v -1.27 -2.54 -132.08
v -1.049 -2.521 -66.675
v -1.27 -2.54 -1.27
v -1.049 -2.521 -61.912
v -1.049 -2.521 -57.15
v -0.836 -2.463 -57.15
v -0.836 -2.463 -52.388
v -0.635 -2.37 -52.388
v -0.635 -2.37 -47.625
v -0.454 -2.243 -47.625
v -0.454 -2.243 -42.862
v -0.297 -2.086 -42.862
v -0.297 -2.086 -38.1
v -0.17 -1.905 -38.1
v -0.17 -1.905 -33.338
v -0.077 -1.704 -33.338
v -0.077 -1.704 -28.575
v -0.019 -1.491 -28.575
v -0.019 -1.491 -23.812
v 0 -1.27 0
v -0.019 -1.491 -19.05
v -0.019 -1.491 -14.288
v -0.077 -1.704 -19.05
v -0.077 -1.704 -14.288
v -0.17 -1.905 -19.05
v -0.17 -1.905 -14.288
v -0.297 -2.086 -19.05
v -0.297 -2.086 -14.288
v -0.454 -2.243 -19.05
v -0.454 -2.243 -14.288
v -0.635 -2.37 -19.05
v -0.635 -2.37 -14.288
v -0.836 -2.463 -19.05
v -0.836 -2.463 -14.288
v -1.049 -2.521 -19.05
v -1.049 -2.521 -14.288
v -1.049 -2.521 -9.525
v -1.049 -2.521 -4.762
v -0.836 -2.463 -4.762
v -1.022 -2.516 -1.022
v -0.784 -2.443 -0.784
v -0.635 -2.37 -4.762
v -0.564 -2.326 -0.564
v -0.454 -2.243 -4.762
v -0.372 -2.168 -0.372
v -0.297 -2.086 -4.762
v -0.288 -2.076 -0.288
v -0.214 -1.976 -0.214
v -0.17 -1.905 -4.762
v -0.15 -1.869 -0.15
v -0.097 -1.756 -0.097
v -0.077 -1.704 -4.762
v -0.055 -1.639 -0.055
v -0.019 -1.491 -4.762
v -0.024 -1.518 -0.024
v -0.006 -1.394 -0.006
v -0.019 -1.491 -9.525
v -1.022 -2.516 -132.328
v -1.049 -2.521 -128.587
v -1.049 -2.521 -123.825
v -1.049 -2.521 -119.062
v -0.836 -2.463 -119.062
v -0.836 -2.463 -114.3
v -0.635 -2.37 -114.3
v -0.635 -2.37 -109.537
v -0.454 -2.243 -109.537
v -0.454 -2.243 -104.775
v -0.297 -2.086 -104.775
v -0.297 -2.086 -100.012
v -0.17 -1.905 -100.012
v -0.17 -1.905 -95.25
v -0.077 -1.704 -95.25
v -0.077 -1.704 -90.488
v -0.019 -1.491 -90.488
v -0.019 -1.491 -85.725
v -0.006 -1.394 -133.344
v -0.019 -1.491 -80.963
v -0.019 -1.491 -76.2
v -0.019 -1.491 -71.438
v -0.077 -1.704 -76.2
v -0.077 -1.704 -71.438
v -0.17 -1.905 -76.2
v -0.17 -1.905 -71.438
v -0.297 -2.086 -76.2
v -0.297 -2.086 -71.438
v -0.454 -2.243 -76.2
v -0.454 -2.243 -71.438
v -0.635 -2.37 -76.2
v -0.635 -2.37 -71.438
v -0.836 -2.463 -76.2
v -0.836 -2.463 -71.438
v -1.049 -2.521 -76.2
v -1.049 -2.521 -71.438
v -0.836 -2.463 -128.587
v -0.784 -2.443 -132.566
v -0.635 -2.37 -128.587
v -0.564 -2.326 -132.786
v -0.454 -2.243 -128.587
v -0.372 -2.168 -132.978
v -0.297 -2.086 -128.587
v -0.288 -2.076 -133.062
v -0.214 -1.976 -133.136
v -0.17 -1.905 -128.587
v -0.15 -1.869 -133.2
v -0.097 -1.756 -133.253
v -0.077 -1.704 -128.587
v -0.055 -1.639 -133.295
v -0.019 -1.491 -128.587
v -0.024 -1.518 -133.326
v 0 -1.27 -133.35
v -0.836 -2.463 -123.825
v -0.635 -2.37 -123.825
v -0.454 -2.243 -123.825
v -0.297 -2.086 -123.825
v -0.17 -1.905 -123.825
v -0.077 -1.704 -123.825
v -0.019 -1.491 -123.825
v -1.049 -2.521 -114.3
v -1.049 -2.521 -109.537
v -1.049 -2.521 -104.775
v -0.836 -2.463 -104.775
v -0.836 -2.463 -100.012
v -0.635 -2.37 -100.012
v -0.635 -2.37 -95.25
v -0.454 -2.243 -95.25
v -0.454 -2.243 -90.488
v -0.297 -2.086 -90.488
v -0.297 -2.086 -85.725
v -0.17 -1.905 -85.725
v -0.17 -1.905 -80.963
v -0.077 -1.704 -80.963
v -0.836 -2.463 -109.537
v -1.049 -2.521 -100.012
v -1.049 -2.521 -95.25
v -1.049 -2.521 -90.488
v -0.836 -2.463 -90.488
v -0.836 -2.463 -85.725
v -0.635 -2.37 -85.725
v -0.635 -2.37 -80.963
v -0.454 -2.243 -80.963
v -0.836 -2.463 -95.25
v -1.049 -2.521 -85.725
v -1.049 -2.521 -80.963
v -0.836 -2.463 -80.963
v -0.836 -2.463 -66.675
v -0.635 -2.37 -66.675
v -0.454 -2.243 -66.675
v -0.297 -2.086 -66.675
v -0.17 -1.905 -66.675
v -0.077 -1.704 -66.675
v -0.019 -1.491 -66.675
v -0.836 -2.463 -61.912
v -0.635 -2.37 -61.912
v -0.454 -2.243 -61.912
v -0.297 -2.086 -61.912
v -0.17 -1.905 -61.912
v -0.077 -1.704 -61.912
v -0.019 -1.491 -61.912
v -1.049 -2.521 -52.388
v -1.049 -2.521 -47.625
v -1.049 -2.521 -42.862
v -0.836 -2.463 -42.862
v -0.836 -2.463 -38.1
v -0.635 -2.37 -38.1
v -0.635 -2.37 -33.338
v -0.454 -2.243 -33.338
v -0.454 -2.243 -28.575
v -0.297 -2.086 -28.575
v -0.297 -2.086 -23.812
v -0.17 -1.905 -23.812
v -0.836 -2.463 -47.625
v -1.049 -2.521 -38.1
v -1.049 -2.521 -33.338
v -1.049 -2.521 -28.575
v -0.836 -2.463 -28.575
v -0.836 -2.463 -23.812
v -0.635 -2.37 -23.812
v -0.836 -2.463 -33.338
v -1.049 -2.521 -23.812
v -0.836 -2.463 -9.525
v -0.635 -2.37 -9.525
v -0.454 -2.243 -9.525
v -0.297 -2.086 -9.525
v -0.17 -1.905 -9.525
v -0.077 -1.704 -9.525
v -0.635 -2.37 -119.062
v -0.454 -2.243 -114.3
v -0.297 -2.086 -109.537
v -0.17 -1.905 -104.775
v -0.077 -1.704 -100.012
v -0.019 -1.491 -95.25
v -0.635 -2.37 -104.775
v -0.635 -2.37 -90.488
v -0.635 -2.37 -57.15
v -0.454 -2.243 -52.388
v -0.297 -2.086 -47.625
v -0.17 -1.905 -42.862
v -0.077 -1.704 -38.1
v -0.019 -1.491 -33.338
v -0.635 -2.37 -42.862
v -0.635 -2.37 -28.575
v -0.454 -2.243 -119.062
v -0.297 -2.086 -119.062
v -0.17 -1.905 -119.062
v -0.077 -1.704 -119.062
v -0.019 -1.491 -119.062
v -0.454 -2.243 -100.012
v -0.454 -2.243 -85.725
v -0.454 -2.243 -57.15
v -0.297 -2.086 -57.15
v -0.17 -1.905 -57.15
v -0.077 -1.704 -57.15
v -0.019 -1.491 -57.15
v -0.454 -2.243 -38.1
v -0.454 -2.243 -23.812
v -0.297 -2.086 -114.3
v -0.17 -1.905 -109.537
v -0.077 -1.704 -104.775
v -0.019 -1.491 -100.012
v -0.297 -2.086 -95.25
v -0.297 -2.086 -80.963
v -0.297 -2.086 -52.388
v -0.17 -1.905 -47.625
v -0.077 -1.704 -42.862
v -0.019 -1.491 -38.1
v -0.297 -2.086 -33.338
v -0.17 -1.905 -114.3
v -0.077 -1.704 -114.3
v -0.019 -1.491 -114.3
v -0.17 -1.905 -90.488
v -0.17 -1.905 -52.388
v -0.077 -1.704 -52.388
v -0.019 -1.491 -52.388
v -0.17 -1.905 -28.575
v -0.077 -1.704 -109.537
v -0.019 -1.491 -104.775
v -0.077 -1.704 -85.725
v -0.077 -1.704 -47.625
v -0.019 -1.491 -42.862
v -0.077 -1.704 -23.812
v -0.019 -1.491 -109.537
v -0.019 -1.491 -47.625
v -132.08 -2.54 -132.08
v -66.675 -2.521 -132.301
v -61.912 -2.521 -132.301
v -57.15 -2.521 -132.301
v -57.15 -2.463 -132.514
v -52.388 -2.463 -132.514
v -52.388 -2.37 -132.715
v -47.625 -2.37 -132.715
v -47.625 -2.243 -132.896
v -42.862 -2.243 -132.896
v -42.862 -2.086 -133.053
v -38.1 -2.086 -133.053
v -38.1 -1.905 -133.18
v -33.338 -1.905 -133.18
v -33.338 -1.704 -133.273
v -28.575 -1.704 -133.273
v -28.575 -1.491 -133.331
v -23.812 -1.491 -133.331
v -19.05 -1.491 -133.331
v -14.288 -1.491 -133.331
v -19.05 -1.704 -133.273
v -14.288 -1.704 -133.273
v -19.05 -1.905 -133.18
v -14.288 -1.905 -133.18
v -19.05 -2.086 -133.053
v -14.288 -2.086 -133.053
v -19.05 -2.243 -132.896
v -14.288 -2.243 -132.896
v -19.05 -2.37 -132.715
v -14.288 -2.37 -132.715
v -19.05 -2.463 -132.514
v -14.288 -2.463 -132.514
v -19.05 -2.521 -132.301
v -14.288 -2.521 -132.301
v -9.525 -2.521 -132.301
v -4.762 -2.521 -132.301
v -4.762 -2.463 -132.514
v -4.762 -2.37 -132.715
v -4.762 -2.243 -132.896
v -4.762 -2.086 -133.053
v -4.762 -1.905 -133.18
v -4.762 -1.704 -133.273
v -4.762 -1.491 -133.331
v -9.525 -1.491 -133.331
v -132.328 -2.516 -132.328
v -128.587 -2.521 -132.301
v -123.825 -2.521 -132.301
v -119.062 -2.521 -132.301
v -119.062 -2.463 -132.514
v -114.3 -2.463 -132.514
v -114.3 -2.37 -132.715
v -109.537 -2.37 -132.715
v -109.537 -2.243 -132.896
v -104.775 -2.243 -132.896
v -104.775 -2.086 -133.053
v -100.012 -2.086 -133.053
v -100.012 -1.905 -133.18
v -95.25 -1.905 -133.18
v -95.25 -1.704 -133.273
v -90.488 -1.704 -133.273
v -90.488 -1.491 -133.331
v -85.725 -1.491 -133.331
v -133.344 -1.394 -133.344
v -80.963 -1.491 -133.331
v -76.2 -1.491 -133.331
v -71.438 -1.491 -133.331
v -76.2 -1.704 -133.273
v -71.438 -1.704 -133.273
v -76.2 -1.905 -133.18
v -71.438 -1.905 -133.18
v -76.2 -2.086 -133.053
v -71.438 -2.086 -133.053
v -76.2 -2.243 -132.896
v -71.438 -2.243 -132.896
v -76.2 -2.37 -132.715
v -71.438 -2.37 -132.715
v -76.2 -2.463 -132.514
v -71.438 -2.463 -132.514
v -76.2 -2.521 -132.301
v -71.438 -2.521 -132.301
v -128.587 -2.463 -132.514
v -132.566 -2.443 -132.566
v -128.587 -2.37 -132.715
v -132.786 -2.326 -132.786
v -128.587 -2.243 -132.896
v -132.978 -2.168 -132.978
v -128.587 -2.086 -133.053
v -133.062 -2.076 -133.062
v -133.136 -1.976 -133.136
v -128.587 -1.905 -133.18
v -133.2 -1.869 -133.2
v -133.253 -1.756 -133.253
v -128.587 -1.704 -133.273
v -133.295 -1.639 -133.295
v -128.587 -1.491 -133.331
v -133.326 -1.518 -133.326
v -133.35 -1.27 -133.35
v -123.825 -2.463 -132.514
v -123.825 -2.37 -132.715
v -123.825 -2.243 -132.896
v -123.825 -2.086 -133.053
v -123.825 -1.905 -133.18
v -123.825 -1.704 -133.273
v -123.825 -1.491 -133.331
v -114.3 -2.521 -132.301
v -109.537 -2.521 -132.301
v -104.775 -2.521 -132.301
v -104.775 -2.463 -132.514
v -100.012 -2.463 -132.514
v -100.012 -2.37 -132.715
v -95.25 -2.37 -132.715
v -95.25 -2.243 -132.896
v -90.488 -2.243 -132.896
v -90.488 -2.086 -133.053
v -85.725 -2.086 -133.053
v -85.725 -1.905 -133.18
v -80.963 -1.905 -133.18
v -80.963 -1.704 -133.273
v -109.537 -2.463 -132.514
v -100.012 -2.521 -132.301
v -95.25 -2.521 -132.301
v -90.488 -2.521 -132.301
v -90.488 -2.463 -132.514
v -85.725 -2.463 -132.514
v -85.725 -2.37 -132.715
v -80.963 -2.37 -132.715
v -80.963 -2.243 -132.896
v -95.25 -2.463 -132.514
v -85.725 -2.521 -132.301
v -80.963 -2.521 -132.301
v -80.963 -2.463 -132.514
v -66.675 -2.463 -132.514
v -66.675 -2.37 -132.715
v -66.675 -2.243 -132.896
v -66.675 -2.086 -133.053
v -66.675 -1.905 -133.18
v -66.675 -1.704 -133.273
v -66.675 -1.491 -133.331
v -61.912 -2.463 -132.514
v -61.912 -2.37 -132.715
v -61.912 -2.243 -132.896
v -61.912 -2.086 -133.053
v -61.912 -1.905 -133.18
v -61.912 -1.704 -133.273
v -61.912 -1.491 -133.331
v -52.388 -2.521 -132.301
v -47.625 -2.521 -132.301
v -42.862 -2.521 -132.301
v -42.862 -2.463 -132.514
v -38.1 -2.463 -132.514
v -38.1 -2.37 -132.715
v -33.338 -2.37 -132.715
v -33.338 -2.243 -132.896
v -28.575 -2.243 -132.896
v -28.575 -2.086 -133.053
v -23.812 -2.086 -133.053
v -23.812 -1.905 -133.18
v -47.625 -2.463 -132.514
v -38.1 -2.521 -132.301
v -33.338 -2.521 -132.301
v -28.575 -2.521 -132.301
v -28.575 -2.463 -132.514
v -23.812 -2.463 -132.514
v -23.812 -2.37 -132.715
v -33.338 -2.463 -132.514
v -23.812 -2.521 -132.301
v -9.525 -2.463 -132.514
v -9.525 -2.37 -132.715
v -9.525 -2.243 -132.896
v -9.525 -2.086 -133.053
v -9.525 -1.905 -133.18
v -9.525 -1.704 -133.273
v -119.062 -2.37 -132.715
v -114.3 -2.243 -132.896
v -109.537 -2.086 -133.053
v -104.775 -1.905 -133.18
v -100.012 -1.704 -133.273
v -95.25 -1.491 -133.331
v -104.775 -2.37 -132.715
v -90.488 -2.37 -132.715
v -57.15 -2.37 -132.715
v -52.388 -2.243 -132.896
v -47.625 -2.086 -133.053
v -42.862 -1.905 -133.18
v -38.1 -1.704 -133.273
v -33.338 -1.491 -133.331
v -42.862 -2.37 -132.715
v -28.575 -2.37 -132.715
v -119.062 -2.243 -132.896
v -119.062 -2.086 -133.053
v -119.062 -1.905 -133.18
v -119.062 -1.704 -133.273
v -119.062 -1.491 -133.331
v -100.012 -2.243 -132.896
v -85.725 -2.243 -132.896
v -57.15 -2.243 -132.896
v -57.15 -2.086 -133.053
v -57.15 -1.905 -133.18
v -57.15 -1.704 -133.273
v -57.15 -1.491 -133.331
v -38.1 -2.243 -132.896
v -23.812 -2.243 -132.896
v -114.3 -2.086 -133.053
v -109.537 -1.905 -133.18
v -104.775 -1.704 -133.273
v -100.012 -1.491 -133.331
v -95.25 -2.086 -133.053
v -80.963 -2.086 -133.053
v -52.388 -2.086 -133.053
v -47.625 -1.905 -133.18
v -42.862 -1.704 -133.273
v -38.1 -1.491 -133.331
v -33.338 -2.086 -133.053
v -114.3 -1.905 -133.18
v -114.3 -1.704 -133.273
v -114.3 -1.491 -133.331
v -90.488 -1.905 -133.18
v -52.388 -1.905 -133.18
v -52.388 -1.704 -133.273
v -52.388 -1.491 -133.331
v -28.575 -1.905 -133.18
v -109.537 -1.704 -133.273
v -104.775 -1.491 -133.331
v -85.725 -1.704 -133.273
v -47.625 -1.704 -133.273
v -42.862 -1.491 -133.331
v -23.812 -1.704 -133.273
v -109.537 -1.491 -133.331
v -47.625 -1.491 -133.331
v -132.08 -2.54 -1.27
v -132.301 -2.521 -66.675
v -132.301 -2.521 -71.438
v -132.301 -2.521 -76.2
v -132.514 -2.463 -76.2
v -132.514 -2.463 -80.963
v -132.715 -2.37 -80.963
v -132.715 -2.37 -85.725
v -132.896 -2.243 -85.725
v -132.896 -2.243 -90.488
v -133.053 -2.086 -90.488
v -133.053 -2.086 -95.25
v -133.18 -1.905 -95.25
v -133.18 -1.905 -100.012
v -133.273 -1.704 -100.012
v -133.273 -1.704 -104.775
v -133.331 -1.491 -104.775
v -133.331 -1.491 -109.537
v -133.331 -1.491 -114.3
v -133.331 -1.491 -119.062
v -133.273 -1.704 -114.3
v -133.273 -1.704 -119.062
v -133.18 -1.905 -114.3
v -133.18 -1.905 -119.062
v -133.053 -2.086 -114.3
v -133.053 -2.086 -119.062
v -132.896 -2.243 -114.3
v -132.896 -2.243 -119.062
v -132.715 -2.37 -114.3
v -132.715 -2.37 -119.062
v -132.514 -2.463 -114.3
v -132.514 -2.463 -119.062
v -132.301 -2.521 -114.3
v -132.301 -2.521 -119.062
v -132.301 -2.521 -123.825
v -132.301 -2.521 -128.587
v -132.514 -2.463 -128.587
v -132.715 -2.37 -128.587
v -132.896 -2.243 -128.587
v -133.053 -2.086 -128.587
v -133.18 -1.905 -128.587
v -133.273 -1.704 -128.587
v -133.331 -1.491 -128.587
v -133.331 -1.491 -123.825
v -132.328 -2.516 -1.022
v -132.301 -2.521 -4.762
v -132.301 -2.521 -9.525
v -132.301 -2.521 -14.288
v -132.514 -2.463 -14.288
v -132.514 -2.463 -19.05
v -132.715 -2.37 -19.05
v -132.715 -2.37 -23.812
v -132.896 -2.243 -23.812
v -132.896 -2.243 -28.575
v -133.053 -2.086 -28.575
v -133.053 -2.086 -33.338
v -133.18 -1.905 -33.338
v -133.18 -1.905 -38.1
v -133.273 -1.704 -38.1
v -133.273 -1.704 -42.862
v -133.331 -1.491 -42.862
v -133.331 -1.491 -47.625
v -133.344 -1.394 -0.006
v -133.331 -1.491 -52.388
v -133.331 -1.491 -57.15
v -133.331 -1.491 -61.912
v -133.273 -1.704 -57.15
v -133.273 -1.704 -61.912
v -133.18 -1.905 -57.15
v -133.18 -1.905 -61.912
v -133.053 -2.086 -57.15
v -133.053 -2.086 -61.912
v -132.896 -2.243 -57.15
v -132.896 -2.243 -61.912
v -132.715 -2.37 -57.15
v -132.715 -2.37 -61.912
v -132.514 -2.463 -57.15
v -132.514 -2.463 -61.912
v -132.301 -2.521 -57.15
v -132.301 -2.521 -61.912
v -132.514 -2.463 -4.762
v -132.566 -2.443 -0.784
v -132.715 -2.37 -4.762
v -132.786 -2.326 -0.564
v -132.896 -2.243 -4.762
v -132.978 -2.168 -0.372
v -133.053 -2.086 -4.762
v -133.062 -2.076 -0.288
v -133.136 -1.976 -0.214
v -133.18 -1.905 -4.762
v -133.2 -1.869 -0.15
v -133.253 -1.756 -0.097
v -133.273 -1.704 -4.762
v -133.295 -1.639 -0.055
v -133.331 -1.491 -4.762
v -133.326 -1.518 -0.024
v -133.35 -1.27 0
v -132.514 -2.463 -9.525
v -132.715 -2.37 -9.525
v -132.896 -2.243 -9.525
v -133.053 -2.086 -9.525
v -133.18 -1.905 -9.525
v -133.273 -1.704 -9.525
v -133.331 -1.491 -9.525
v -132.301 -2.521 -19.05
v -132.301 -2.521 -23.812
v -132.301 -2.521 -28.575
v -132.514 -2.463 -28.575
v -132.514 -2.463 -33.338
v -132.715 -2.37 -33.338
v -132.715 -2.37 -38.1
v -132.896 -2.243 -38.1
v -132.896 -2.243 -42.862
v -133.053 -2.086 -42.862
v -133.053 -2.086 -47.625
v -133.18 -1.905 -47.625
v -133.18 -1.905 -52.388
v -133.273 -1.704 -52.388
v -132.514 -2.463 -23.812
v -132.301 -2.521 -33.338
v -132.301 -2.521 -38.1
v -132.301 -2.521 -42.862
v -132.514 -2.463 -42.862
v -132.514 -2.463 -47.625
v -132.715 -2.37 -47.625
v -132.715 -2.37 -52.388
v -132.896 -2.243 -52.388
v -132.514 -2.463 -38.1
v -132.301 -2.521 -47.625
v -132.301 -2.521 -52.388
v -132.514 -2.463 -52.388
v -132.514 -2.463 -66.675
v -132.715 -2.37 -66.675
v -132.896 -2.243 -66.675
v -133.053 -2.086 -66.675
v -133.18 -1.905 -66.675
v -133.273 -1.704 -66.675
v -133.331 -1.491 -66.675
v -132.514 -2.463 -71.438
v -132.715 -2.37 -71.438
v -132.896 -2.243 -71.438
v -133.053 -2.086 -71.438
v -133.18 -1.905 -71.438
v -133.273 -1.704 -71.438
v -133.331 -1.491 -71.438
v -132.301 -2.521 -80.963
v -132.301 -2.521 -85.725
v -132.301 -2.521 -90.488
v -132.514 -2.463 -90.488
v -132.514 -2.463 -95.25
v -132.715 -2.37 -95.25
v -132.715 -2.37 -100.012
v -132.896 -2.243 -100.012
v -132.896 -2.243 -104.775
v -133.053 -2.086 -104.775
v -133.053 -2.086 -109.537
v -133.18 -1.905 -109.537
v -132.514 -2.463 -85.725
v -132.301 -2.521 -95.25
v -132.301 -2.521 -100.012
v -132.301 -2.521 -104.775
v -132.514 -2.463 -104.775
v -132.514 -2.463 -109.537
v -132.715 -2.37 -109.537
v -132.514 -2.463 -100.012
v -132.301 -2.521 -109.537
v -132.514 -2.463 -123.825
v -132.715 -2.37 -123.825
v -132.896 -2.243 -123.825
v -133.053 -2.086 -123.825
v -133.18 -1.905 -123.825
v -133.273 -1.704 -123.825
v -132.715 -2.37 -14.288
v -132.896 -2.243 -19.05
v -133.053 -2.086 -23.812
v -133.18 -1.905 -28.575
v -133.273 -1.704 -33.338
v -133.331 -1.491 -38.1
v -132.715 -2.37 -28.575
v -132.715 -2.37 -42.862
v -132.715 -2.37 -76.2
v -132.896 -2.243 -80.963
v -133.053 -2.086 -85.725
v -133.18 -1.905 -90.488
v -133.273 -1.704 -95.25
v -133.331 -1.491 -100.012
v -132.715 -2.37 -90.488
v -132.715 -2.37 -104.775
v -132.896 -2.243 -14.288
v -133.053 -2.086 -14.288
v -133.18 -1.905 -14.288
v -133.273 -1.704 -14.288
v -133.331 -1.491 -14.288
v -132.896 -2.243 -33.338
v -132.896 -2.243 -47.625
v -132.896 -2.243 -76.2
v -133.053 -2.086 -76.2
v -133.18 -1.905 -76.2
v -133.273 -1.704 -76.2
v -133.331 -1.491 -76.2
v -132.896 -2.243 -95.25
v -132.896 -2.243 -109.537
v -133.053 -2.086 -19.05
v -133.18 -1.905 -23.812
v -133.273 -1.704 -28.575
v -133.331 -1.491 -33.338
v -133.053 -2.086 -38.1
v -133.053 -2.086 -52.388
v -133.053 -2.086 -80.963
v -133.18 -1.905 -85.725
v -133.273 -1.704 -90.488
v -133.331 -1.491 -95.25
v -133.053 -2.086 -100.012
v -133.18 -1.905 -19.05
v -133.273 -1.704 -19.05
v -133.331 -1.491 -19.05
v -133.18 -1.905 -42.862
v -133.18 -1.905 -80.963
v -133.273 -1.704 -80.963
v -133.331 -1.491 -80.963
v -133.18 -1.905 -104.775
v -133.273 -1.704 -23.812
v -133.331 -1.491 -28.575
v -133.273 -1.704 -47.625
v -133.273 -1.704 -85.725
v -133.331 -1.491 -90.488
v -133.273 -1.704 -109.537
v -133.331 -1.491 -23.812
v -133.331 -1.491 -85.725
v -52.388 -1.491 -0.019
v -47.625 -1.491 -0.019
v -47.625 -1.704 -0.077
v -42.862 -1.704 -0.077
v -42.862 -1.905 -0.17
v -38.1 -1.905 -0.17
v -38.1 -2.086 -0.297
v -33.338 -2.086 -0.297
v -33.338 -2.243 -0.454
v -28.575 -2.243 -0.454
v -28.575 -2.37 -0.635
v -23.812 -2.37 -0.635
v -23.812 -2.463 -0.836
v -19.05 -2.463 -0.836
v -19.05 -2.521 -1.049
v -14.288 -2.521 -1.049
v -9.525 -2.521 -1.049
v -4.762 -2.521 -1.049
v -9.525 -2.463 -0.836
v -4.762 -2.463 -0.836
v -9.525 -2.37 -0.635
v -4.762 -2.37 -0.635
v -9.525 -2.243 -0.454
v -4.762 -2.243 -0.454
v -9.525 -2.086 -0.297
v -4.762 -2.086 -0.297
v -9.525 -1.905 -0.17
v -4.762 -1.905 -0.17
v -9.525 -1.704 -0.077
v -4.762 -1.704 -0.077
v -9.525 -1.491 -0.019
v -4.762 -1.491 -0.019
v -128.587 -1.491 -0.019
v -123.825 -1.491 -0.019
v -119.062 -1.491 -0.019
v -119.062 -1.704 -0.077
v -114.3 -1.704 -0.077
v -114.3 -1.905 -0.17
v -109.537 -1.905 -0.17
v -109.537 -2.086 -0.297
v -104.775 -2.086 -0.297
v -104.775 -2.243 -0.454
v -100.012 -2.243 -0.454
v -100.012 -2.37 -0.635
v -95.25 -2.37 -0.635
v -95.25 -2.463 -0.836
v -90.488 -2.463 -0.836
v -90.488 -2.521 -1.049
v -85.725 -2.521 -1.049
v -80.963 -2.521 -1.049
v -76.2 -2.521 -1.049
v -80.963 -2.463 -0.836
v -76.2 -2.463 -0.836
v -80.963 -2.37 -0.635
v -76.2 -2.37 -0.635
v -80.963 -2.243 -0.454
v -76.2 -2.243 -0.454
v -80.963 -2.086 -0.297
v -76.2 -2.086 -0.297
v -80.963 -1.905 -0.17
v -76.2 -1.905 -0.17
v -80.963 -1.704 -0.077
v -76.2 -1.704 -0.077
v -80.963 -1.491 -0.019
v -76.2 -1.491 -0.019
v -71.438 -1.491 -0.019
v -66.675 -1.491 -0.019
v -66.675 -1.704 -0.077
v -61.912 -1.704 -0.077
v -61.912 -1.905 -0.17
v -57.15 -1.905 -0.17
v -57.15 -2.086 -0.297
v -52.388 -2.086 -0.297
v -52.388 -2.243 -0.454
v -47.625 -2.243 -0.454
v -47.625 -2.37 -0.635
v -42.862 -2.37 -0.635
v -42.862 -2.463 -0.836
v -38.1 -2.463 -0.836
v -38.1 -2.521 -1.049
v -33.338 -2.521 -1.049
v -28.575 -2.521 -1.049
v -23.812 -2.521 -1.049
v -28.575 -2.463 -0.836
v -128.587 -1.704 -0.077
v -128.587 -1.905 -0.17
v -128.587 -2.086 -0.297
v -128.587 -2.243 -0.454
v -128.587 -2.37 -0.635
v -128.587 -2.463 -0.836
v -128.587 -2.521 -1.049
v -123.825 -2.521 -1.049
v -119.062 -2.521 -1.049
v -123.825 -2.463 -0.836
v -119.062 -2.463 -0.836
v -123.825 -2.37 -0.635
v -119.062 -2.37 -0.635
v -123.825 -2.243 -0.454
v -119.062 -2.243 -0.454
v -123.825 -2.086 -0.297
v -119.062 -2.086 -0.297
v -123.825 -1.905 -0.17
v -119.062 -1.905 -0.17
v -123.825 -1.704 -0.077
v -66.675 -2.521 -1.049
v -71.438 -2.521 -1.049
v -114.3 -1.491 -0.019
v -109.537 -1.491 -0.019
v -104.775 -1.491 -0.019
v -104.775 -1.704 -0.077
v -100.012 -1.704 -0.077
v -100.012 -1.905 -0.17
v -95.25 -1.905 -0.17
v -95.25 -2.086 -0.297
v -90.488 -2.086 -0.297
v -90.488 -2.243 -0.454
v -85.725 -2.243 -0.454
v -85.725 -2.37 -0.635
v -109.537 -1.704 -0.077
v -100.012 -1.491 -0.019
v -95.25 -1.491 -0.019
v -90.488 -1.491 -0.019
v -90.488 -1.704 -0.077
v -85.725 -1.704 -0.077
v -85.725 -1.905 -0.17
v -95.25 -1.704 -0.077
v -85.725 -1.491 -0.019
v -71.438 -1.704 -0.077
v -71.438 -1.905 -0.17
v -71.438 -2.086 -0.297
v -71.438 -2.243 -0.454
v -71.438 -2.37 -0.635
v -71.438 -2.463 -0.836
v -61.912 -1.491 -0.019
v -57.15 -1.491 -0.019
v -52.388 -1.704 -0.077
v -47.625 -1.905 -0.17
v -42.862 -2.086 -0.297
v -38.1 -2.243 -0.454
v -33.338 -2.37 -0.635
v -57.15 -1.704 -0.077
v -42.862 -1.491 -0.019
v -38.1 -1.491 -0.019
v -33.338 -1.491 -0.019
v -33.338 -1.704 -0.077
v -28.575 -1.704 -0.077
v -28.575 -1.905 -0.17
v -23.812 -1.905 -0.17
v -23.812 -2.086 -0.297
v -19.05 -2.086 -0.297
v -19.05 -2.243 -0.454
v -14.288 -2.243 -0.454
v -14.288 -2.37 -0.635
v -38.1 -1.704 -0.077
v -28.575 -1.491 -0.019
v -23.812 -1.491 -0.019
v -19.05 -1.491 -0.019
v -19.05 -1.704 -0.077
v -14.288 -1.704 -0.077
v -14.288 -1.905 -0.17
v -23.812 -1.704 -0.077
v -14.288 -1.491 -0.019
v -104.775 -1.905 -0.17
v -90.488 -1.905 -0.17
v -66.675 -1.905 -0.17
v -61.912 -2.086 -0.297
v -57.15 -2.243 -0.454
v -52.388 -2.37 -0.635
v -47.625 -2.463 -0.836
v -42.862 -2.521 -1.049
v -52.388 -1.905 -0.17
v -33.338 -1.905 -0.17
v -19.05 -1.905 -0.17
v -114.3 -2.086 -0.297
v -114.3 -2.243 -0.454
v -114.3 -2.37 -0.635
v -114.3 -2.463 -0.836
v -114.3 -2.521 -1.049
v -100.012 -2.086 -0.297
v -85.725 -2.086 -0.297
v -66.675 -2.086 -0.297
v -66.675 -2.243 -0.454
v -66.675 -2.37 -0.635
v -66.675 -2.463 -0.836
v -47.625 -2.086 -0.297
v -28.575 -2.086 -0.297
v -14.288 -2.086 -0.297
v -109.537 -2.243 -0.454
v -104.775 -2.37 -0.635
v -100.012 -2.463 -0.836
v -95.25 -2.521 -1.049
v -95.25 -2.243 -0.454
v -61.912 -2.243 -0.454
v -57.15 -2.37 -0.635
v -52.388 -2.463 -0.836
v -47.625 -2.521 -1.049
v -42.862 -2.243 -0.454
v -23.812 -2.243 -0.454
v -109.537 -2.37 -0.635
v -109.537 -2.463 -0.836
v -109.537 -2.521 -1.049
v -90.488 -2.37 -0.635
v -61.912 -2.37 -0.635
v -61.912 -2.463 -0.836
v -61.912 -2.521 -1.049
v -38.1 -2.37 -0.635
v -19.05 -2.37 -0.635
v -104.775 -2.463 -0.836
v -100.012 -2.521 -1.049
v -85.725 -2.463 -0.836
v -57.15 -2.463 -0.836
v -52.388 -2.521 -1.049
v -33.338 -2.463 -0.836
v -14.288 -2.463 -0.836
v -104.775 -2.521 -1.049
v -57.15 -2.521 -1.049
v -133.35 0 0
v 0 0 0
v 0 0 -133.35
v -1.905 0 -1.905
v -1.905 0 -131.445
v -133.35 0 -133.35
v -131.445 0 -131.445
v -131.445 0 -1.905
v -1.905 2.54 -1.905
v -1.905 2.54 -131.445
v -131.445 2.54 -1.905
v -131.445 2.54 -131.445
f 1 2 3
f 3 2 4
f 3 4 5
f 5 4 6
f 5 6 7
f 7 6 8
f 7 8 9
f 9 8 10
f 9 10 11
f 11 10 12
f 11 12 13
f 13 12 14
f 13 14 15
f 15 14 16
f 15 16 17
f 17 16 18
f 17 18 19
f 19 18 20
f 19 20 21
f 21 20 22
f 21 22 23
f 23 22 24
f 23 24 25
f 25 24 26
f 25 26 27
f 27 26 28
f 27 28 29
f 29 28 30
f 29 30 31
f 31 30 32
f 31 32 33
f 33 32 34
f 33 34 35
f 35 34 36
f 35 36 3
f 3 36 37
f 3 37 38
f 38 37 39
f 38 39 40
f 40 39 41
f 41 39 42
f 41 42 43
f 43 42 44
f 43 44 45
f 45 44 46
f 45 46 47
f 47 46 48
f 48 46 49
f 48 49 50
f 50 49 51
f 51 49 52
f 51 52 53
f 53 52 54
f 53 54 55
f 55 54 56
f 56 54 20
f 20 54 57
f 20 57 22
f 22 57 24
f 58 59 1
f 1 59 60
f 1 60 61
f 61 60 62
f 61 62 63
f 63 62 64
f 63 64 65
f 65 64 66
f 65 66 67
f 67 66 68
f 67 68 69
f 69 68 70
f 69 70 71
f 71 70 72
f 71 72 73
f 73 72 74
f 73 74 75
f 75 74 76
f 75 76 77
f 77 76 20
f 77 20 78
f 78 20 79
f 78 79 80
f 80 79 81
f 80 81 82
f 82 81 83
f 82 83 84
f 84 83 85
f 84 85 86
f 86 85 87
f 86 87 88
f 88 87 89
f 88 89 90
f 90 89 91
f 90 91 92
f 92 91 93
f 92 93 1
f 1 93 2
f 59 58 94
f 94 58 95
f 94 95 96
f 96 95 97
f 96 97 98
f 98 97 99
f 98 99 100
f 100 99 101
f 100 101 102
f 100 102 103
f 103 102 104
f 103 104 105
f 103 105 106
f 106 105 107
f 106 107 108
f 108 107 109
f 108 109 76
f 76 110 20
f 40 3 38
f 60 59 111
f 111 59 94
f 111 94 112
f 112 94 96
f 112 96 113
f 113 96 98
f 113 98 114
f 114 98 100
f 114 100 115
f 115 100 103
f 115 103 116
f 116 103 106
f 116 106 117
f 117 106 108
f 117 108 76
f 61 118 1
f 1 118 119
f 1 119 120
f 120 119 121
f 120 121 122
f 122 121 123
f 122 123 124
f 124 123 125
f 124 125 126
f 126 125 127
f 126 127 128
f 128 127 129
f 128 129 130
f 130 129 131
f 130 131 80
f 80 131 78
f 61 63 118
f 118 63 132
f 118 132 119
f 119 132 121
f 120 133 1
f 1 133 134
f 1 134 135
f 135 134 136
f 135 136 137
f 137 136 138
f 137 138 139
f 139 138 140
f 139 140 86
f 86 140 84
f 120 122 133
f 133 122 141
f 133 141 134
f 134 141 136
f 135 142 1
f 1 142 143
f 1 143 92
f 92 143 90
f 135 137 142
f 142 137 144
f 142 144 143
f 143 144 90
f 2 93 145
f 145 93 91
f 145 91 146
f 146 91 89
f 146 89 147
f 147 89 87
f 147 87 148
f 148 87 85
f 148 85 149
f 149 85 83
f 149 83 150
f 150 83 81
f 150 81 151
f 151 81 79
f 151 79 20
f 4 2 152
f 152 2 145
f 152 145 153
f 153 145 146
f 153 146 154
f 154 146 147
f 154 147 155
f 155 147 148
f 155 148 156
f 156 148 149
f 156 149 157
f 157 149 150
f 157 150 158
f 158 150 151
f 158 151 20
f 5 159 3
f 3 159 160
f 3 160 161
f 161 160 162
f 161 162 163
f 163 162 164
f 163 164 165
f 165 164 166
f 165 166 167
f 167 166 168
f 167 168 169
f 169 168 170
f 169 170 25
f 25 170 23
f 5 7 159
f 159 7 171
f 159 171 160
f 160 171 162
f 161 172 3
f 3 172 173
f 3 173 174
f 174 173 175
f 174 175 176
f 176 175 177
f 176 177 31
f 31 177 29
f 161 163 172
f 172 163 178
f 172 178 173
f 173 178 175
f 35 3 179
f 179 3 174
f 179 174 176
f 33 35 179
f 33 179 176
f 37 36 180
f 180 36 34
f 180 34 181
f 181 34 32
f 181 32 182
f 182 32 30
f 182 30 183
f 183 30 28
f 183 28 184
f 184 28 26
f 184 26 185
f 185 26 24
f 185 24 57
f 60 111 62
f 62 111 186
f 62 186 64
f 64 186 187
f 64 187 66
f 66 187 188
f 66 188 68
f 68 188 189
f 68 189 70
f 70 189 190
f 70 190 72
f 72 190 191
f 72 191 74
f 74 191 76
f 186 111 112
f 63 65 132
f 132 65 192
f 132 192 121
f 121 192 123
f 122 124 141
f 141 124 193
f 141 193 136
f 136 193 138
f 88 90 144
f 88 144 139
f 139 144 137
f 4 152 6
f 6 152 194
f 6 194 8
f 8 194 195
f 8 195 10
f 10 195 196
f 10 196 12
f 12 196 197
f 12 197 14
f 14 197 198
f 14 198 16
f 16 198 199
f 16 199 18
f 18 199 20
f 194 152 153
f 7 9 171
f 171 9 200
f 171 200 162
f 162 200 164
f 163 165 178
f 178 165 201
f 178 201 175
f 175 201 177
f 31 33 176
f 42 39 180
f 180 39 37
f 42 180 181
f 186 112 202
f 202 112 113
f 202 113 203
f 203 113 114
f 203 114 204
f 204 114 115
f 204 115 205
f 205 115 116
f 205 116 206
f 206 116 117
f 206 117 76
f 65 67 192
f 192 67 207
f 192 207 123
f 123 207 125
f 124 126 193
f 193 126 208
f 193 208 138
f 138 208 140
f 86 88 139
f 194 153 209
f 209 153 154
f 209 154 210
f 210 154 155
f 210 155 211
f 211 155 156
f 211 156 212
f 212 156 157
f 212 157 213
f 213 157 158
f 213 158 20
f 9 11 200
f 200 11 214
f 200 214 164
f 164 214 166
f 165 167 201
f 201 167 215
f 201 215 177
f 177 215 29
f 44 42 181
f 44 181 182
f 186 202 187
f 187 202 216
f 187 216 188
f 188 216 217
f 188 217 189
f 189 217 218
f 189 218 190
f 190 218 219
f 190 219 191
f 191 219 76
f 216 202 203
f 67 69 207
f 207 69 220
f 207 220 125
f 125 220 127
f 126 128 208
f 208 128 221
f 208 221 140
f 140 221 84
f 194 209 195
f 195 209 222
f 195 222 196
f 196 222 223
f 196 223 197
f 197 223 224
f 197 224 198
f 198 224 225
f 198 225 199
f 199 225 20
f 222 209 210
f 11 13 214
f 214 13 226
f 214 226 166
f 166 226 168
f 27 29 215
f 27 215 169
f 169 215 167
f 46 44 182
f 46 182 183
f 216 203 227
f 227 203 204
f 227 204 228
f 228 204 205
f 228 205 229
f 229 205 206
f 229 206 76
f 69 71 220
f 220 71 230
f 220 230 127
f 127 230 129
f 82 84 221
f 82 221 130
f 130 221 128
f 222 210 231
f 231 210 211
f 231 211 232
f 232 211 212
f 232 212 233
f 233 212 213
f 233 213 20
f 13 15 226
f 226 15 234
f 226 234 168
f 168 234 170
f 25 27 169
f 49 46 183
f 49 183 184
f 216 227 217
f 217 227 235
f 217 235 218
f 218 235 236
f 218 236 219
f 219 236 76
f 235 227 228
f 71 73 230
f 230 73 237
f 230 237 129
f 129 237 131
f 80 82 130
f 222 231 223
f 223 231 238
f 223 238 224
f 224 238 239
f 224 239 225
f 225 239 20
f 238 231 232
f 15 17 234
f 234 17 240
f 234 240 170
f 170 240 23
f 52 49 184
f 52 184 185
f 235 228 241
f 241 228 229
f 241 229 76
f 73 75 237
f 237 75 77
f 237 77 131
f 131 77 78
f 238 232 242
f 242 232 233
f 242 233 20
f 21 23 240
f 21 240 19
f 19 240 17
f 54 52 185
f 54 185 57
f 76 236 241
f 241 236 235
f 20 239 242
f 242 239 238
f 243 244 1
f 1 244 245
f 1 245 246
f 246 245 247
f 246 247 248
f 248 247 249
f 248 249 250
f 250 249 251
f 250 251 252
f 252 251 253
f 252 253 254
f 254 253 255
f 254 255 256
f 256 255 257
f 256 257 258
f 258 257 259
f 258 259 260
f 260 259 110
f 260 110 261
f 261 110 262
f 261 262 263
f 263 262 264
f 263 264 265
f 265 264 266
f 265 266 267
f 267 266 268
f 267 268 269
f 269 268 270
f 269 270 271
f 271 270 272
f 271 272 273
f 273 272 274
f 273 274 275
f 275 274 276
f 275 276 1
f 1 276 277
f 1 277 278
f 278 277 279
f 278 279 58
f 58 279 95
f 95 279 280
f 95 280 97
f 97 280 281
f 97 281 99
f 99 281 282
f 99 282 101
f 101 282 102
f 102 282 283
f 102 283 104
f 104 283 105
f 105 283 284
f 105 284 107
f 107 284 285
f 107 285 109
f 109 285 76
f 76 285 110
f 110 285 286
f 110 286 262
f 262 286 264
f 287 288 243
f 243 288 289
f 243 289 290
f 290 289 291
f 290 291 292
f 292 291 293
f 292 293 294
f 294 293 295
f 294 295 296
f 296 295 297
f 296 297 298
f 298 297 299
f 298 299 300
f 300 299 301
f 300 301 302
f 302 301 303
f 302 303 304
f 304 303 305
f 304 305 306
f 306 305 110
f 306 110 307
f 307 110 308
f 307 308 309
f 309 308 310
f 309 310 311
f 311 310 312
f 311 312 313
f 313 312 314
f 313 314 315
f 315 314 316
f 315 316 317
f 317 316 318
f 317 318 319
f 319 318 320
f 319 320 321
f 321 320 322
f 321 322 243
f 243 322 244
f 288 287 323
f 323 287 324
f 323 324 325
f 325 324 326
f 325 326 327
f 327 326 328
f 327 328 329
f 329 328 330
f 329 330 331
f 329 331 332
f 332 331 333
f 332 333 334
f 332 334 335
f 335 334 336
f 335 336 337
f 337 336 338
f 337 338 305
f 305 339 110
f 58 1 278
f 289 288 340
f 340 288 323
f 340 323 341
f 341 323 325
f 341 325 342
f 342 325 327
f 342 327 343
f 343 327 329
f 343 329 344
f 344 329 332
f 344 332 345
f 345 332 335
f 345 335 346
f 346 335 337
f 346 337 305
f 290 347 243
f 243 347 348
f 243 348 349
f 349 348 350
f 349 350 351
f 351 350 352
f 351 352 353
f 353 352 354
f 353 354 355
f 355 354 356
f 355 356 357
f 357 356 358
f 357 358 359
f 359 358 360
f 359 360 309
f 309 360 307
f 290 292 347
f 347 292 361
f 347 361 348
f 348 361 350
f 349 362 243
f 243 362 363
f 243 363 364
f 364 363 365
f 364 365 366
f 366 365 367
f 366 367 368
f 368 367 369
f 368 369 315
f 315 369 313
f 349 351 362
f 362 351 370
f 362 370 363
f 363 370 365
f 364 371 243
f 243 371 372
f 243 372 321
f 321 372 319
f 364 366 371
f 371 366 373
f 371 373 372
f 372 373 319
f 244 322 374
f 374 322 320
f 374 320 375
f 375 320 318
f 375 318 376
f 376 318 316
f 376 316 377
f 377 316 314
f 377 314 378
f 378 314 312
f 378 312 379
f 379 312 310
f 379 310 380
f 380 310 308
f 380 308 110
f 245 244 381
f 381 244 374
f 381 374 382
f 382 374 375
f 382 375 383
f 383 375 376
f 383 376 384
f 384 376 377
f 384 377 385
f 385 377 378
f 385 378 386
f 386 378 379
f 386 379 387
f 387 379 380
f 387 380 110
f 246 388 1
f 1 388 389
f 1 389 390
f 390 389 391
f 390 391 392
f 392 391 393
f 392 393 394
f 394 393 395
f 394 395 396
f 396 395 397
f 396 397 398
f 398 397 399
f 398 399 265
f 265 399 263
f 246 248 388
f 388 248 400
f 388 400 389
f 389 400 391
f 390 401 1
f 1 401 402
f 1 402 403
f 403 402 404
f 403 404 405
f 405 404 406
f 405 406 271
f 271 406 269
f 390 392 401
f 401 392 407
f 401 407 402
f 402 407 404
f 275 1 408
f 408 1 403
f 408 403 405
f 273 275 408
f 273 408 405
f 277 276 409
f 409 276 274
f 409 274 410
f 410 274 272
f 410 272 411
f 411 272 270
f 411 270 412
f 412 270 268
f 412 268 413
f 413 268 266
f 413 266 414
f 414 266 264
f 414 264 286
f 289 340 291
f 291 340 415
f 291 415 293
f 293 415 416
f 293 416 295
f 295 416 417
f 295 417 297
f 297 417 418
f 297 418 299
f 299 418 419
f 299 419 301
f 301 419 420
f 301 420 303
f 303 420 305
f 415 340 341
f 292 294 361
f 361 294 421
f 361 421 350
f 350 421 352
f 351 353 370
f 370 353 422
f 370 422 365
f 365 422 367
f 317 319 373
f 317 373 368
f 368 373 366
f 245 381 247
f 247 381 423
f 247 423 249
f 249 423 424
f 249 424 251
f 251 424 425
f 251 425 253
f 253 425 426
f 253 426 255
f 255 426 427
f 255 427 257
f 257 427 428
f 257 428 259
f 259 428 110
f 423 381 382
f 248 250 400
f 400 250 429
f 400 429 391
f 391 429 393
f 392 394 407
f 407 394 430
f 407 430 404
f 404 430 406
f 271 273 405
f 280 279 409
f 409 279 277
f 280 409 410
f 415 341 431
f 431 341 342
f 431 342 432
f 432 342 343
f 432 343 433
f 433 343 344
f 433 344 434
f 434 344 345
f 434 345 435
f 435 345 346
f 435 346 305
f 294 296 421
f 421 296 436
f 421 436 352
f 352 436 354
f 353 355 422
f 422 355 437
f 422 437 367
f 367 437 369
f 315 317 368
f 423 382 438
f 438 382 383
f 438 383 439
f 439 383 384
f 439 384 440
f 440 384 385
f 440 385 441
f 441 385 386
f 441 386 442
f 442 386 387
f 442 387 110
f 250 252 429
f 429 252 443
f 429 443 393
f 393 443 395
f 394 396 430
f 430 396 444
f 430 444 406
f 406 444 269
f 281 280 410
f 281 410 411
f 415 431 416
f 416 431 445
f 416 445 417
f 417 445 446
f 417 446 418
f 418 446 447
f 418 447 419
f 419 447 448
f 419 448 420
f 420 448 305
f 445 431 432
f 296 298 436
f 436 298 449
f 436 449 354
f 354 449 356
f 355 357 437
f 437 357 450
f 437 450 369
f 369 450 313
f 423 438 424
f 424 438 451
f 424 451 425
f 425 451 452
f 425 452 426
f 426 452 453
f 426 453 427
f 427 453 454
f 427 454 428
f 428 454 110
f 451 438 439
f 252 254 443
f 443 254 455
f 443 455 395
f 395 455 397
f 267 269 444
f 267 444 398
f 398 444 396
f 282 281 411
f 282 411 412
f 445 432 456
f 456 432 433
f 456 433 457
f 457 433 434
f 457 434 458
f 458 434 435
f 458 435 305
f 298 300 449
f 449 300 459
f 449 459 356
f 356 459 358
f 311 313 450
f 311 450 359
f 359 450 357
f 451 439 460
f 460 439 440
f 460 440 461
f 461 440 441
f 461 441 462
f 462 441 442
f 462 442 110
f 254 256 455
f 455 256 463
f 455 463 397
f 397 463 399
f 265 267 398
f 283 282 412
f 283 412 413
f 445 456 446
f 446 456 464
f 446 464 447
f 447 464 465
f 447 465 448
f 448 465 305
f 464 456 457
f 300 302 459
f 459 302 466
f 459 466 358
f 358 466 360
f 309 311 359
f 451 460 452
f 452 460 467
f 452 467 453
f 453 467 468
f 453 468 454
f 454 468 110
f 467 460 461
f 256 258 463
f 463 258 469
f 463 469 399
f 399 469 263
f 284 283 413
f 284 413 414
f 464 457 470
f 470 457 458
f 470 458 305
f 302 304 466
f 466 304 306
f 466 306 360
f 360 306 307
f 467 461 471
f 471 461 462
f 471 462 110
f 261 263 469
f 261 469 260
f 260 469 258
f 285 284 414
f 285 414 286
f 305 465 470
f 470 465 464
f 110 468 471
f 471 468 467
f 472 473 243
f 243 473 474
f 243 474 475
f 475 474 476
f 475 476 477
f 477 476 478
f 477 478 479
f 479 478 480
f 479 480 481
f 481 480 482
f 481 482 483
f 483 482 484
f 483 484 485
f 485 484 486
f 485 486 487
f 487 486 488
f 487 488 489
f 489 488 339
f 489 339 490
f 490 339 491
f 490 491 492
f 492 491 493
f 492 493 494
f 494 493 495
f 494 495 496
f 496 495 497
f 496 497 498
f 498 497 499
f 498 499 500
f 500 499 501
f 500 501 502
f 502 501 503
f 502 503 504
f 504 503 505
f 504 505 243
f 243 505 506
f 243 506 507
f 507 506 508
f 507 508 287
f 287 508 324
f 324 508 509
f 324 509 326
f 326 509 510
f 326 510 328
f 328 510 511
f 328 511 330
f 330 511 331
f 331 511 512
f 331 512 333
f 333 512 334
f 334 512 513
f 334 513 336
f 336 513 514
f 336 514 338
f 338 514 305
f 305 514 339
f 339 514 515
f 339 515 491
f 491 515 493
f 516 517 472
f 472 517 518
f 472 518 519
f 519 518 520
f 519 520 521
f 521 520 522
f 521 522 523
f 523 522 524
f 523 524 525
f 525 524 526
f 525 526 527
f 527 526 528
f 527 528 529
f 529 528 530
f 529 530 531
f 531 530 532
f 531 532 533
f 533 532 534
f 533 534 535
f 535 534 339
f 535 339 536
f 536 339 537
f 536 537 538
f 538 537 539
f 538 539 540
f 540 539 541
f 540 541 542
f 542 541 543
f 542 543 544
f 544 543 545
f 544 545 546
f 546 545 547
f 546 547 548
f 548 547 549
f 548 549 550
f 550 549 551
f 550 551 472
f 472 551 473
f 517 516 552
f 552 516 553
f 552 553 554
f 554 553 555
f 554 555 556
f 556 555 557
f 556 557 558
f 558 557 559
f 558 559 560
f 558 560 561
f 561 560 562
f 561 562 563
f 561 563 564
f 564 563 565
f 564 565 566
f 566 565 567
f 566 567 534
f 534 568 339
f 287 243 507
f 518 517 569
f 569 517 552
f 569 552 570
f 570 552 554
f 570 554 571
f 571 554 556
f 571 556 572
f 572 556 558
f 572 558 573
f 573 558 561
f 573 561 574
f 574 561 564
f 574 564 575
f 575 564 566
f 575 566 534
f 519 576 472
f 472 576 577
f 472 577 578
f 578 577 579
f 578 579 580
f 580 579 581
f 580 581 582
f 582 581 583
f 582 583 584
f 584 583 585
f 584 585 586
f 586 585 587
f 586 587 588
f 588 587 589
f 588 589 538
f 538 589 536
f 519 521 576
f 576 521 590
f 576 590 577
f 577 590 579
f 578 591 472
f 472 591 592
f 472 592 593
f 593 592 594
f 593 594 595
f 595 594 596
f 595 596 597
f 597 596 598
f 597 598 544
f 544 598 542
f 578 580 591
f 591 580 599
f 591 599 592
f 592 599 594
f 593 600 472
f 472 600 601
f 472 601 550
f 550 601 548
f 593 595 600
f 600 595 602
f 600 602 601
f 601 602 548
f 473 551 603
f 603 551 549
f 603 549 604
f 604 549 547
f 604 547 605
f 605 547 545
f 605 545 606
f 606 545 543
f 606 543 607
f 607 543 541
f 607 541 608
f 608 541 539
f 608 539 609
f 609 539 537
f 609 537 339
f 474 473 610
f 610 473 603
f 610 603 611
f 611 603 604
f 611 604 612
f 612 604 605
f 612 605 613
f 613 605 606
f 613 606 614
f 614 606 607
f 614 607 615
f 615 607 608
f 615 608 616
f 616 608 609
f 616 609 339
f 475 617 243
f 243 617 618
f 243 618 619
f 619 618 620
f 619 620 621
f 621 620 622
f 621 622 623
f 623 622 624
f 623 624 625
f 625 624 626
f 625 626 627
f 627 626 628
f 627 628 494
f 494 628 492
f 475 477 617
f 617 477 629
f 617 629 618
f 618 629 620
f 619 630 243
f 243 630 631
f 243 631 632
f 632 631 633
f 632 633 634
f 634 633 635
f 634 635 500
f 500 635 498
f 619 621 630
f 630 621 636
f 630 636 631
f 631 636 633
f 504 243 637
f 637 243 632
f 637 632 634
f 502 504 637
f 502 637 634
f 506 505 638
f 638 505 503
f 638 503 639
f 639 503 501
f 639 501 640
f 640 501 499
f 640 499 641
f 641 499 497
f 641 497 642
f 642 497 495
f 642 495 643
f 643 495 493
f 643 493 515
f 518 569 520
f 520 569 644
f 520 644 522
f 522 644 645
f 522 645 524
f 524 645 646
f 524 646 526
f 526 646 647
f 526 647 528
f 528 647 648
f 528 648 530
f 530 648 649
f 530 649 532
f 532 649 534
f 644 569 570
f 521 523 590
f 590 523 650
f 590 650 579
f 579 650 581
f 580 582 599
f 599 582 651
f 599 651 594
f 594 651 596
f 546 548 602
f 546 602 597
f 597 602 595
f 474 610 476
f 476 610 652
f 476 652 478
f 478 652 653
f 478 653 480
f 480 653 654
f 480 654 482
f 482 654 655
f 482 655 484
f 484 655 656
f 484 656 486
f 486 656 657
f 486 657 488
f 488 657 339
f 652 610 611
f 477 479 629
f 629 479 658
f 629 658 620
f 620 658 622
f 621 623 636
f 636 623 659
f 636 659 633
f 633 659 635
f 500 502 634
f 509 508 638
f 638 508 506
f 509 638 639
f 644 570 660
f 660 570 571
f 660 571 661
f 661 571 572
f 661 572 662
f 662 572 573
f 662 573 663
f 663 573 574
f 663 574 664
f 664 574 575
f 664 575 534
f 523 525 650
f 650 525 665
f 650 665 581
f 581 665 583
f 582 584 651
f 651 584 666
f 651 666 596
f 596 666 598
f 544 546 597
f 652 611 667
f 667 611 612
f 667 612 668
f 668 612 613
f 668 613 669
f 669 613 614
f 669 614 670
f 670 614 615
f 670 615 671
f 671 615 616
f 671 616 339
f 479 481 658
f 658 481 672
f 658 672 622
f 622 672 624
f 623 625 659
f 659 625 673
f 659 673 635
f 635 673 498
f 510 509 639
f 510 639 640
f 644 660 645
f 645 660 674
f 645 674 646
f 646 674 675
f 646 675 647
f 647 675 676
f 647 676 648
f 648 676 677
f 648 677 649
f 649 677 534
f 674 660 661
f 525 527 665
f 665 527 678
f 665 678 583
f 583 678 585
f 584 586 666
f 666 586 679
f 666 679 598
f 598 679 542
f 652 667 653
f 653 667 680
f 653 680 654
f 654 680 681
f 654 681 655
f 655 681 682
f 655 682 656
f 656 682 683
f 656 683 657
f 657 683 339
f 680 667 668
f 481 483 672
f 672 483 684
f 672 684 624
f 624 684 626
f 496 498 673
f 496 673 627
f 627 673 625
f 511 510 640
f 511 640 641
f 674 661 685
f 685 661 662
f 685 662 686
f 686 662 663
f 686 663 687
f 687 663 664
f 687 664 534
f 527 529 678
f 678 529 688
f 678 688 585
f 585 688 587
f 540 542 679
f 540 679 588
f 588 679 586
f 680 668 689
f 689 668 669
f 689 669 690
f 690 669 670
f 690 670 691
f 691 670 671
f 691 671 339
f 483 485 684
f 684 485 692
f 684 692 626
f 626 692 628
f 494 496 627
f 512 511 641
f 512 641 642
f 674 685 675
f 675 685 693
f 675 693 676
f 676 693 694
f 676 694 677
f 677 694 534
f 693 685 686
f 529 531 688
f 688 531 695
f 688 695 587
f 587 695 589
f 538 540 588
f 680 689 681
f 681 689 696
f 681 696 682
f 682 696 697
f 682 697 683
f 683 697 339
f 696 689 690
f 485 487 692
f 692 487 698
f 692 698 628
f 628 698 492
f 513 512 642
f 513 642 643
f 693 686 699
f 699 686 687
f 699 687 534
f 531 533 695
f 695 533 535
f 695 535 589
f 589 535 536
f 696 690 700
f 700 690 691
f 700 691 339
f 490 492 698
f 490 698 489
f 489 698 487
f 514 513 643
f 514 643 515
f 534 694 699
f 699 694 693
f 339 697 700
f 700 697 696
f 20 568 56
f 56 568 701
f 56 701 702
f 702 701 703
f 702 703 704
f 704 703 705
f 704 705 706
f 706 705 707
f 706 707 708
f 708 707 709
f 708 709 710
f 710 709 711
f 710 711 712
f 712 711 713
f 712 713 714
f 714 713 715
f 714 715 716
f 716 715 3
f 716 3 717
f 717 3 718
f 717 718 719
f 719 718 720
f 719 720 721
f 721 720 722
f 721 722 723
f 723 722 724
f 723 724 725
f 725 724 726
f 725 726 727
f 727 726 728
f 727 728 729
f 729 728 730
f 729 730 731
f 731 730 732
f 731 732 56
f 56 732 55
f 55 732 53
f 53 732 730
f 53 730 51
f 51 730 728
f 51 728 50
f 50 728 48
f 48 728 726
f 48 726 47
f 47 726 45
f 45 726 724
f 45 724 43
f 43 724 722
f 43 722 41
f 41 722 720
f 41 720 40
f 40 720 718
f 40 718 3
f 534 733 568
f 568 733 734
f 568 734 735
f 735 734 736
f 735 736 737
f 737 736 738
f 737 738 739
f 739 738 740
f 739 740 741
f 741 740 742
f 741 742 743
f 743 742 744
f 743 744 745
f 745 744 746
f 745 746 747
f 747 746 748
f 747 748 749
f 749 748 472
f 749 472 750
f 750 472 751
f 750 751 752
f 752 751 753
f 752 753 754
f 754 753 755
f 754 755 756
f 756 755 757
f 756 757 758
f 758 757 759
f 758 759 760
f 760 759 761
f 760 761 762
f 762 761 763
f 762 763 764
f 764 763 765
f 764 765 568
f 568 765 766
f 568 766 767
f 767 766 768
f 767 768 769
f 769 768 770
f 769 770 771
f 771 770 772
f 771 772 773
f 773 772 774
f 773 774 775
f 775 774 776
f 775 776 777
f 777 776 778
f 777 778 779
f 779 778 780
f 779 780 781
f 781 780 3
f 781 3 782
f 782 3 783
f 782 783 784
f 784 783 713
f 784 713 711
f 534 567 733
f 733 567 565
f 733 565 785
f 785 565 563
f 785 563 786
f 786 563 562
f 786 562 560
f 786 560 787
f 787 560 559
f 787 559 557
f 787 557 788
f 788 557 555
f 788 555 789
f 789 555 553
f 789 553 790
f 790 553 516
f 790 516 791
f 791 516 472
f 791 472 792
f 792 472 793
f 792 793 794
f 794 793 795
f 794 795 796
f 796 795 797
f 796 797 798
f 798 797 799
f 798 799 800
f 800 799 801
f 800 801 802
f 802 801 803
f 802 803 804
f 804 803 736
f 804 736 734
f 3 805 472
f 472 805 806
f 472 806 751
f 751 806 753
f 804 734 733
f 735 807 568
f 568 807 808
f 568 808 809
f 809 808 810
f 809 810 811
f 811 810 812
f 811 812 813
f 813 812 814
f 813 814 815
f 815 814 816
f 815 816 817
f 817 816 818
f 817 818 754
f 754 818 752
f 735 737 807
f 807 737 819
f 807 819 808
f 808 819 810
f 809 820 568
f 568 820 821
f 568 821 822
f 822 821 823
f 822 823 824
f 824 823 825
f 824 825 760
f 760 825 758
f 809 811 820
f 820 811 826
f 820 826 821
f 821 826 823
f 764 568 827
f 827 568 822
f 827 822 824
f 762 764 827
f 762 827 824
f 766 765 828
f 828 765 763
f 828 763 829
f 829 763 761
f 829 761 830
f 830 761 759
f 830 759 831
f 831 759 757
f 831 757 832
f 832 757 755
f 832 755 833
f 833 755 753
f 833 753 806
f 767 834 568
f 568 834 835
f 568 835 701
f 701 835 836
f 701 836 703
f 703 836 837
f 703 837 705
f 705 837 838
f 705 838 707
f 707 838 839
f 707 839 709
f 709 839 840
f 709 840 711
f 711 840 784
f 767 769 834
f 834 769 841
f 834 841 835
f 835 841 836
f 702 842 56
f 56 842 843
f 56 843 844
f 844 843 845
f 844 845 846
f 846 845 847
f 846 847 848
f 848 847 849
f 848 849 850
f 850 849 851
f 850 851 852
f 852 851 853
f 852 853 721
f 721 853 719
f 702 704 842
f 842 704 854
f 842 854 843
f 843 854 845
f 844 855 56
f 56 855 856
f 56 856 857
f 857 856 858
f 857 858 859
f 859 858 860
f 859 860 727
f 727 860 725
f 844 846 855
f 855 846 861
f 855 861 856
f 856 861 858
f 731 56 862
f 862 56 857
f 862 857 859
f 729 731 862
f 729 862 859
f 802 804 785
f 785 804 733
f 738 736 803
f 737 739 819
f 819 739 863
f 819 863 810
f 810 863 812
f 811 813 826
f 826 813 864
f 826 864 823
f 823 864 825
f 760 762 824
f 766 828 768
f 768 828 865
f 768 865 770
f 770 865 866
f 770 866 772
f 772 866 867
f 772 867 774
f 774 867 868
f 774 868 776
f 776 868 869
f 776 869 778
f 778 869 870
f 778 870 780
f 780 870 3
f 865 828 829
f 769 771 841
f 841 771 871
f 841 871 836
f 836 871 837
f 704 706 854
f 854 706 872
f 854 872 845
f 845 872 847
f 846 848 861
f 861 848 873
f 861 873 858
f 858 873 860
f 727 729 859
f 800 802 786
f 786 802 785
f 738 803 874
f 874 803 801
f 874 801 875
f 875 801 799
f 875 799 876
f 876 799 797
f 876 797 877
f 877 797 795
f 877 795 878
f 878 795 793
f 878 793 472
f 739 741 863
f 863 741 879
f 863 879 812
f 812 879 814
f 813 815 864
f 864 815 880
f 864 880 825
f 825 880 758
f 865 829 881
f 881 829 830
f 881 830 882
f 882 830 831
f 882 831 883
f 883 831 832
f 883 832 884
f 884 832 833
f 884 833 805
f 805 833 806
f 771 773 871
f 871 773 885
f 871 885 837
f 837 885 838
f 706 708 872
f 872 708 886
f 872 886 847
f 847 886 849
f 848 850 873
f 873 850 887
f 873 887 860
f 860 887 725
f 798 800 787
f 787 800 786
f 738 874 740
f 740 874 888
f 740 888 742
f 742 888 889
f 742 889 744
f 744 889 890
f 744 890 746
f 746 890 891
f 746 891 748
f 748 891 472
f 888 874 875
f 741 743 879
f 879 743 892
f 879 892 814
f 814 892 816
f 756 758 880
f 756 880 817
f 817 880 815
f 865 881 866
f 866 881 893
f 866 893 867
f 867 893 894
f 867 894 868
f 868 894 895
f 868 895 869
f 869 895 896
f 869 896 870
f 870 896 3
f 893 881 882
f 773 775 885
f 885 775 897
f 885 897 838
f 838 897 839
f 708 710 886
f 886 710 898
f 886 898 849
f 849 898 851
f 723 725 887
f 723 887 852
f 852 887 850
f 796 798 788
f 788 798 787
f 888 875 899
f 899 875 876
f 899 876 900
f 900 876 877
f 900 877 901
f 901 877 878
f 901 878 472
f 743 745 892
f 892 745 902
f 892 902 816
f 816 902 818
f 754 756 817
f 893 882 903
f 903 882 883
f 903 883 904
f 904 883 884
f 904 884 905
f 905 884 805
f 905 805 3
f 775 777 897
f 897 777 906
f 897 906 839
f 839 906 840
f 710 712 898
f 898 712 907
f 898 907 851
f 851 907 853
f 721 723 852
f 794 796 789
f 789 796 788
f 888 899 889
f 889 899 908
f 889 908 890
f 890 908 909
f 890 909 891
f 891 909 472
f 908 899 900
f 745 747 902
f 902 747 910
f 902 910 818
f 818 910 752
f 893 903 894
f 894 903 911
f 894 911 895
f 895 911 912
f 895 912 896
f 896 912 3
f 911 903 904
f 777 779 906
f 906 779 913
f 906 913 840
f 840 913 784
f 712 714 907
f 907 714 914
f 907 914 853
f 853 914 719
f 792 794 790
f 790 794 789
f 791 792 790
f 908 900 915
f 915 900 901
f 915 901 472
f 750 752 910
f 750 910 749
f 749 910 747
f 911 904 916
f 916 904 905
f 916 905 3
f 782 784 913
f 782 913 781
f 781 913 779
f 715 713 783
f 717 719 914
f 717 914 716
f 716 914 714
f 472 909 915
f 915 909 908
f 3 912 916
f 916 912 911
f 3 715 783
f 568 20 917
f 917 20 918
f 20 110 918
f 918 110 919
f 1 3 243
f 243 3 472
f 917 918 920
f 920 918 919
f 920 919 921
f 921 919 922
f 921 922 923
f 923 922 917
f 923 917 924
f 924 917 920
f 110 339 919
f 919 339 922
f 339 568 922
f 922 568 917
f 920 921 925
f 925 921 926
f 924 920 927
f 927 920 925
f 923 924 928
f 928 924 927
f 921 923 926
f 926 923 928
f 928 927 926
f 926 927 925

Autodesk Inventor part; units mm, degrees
ref_plane "YZ Plane" through (0, 0, 0) normal (1, 0, 0) x (0, 1, 0)
ref_plane "XZ Plane" through (0, 0, 0) normal (0, 1, 0) x (-1, 0, 0)
ref_plane "XY Plane" through (0, 0, 0) normal (0, 0, 1) x (1, 0, 0)
sketch "Sketch1" plane through (0, 0, 0) normal (0, 1, 0) x (-1, 0, 0)
  line L0 (0, 0) -> (133.35, 0)
  line L1 (133.35, 0) -> (133.35, -133.35)
  line L2 (133.35, -133.35) -> (0, -133.35)
  line L3 (0, -133.35) -> (0, 0)
  line L4 (66.675, 0) -> (66.675, -66.675)
  line L5 (1.905, -1.905) -> (131.445, -1.905)
  line L6 (131.445, -1.905) -> (131.445, -131.445)
  line L7 (131.445, -131.445) -> (1.905, -131.445)
  line L8 (1.905, -131.445) -> (1.905, -1.905)
  line L9 (1.905, -1.905) -> (131.445, -131.445) construction
  line L10 (131.445, -1.905) -> (1.905, -131.445) construction
  dimension "d0" = 133.35
  dimension "d1" = 133.35
  dimension "d2" = 66.675
  dimension "d3" = 129.54
  dimension "d4" = 129.54
extrude "Extrusion1" add sketch "Sketch1" along normal blind 2.54 contours L5 L6 L7 L8
extrude "Extrusion2" add sketch "Sketch1" against normal blind 2.54 contours L5 L6 L7 L8 | L0 L1 L2 L3
fillet "Fillet1" radius 1.27 4 edges at (-133.35, -2.54, -66.675) (-66.675, -2.54, -133.35) (-66.675, -2.54, 0) (0, -2.54, -66.675)
properties part number "TC720 lid"
